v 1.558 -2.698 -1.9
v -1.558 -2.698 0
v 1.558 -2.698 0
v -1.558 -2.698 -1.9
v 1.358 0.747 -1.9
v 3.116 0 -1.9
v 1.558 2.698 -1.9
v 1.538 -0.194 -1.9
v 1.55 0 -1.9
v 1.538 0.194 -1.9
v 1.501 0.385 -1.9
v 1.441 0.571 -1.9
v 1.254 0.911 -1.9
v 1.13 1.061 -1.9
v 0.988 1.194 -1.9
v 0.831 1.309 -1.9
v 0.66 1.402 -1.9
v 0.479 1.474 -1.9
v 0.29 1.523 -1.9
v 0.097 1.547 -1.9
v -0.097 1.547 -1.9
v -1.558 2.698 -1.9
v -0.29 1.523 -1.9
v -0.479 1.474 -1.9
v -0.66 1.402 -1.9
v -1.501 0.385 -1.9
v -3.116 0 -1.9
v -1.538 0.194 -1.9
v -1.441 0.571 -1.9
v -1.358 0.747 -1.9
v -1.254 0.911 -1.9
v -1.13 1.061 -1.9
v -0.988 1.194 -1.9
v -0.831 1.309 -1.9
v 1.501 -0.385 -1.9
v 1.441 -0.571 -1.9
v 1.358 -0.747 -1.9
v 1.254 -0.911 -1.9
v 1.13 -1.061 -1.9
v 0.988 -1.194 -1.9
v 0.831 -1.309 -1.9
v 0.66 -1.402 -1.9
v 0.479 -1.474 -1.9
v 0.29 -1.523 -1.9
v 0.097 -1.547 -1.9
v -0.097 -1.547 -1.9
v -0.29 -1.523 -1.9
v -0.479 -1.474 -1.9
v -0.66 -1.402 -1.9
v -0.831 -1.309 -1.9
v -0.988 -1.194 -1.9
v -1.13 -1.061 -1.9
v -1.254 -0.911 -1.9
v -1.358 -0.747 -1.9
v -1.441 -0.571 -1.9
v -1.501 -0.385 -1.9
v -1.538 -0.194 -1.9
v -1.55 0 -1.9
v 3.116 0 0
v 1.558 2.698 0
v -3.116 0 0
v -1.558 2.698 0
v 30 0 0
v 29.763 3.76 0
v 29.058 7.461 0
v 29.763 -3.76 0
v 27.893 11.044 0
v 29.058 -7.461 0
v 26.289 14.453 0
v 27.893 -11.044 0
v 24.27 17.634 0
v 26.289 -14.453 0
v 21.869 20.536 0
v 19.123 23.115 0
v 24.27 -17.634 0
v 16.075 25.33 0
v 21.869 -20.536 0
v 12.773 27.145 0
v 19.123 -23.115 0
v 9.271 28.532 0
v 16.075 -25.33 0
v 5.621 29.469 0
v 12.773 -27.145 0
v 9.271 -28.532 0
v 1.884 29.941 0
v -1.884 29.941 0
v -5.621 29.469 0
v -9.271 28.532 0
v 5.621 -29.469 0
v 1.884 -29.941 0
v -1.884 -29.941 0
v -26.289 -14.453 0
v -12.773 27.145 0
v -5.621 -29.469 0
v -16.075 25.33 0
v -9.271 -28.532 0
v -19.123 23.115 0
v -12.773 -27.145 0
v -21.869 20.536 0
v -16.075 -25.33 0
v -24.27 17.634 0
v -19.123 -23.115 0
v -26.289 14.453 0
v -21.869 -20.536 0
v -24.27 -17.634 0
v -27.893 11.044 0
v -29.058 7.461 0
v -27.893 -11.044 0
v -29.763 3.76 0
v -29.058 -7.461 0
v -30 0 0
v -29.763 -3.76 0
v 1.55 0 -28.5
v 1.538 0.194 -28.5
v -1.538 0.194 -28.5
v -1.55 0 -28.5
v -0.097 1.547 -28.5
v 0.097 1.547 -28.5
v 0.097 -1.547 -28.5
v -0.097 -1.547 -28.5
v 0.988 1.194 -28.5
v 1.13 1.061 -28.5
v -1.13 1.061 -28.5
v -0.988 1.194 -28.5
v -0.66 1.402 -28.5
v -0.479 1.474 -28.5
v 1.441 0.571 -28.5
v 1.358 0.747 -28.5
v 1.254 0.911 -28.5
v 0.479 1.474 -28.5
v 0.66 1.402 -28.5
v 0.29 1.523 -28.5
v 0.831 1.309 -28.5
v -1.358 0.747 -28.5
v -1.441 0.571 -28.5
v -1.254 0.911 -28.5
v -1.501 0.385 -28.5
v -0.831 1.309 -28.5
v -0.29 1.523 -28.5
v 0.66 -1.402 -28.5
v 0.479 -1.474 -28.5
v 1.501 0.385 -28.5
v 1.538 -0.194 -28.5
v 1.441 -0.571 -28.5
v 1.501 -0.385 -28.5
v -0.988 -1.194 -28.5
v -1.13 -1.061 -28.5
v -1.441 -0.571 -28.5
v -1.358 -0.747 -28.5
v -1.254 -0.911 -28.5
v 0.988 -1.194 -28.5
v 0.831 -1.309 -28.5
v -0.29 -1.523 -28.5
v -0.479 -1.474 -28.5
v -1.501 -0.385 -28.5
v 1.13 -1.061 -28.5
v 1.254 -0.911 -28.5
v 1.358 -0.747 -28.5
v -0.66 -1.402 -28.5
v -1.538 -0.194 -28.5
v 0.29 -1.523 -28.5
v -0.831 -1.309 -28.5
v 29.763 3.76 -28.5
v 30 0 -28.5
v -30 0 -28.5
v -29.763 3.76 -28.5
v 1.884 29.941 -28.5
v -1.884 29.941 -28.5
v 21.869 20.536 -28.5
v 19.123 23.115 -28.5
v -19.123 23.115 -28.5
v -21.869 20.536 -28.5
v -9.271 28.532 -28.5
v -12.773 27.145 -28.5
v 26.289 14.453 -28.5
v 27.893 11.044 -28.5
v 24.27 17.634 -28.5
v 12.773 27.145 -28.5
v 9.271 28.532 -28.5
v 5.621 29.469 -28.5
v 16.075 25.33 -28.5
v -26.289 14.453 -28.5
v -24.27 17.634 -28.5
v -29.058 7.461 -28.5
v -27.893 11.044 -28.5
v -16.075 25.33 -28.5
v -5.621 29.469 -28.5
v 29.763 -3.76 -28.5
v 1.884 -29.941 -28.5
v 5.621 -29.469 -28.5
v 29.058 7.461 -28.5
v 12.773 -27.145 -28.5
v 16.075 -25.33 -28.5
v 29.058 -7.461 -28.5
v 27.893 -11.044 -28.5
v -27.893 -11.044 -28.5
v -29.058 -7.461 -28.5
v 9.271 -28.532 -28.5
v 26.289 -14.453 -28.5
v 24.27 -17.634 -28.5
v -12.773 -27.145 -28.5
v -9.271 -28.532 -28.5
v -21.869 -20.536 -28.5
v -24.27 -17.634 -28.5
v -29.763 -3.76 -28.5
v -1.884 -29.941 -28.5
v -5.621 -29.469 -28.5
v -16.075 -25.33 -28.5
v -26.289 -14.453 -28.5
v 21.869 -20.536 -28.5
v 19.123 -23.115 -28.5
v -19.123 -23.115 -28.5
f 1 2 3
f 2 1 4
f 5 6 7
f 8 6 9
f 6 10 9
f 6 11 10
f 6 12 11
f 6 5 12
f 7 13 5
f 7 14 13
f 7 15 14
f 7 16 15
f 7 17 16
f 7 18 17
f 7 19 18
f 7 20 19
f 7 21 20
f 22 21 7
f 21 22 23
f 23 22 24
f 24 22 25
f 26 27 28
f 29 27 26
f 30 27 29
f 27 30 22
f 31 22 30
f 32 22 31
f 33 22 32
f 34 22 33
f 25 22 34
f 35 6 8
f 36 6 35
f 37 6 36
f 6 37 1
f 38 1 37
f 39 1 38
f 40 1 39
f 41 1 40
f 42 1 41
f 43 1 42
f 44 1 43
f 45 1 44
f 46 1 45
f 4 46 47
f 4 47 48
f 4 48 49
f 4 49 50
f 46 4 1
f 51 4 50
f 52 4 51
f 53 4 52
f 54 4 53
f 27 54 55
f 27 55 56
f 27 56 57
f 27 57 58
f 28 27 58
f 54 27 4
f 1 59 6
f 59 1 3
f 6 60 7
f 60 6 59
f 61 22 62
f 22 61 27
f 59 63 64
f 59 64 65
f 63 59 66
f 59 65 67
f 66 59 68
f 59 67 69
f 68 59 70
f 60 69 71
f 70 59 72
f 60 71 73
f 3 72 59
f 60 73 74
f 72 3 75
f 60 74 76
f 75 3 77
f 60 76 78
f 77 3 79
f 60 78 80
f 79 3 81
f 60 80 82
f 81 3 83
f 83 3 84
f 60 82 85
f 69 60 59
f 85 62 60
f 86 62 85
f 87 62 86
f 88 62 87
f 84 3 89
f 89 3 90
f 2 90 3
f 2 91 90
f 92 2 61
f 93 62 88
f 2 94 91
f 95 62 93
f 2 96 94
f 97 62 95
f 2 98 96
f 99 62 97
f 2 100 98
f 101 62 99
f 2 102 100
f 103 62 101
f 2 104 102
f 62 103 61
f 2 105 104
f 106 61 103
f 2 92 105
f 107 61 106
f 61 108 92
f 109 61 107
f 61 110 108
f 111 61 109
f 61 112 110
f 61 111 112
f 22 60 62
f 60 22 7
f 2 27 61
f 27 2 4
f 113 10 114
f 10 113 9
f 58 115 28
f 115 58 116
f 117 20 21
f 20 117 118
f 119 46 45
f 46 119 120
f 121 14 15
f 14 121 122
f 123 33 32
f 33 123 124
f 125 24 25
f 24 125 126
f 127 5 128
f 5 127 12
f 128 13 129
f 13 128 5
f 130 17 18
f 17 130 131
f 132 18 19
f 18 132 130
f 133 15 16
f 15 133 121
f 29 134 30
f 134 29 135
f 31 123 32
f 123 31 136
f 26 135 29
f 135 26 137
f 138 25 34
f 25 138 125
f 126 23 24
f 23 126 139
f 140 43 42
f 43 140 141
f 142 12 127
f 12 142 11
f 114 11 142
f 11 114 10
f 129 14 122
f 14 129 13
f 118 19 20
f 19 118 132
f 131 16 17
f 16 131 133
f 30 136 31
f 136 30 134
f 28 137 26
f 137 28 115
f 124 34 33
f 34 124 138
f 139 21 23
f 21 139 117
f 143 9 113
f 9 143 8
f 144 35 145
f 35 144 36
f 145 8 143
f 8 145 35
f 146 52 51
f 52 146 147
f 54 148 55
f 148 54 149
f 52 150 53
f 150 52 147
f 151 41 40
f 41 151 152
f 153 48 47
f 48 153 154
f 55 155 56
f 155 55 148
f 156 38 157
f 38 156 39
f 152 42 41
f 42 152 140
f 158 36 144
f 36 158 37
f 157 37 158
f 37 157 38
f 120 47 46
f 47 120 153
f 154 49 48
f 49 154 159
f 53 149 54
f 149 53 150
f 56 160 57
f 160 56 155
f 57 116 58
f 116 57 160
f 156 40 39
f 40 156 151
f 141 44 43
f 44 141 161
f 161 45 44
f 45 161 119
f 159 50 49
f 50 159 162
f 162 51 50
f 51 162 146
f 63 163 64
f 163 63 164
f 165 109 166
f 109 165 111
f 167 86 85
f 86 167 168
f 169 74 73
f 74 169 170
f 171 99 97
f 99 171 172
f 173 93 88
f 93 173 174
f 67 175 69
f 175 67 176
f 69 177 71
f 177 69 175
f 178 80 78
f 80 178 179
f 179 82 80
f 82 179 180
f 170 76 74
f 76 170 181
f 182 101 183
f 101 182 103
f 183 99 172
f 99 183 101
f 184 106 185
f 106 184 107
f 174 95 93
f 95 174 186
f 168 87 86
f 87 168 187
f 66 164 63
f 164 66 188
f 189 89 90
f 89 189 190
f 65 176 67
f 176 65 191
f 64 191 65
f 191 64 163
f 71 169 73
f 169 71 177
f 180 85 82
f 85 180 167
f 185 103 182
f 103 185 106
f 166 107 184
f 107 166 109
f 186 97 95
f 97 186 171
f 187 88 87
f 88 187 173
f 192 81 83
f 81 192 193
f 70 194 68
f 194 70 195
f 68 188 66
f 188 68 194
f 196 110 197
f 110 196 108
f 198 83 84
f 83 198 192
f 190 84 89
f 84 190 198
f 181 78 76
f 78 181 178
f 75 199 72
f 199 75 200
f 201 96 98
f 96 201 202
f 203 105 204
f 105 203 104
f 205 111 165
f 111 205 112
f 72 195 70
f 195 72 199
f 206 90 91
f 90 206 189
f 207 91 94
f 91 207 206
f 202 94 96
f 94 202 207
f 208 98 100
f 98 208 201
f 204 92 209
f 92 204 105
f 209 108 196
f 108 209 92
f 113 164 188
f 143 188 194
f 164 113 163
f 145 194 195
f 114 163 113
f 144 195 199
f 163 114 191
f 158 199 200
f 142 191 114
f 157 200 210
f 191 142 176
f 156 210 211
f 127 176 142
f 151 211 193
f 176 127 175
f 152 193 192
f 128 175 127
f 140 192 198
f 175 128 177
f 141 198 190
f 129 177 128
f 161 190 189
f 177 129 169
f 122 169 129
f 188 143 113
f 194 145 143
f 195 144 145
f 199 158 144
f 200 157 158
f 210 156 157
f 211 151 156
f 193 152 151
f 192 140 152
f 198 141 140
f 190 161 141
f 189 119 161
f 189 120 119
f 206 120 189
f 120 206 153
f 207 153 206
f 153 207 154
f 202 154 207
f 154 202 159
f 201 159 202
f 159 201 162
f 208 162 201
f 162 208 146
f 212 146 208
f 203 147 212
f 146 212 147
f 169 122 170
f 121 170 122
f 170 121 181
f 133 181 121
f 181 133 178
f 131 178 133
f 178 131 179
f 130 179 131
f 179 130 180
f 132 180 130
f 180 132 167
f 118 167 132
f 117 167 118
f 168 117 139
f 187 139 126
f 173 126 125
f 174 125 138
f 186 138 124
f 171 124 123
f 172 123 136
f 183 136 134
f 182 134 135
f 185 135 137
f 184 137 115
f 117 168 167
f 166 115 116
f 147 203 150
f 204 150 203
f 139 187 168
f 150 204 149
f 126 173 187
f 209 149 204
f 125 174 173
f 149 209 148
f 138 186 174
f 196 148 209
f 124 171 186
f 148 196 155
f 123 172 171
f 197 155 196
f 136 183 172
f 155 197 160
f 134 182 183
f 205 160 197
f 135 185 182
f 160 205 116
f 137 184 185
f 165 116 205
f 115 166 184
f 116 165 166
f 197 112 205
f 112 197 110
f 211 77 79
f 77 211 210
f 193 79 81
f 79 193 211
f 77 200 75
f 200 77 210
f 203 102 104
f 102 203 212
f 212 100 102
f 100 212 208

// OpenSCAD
$fn = 50;


difference() {
	union() {
		translate(v = [0, 0, -28.5000000000]) {
			cylinder(h = 28.5000000000, r = 30.0000000000);
		}
	}
	union() {
		translate(v = [0, 0, 0]) {
			rotate(a = [0, 0, 0]) {
				difference() {
					union() {
						translate(v = [0, 0, -1.9000000000]) {
							linear_extrude(height = 1.9000000000) {
								polygon(points = [[3.1158000000, 0.0000000000], [1.5579000000, 2.6983619531], [-1.5579000000, 2.6983619531], [-3.1158000000, 0.0000000000], [-1.5579000000, -2.6983619531], [1.5579000000, -2.6983619531]]);
							}
						}
					}
					union();
				}
			}
		}
		#translate(v = [0, 0, -100.0000000000]) {
			cylinder(h = 200, r = 1.5500000000);
		}
	}
}
